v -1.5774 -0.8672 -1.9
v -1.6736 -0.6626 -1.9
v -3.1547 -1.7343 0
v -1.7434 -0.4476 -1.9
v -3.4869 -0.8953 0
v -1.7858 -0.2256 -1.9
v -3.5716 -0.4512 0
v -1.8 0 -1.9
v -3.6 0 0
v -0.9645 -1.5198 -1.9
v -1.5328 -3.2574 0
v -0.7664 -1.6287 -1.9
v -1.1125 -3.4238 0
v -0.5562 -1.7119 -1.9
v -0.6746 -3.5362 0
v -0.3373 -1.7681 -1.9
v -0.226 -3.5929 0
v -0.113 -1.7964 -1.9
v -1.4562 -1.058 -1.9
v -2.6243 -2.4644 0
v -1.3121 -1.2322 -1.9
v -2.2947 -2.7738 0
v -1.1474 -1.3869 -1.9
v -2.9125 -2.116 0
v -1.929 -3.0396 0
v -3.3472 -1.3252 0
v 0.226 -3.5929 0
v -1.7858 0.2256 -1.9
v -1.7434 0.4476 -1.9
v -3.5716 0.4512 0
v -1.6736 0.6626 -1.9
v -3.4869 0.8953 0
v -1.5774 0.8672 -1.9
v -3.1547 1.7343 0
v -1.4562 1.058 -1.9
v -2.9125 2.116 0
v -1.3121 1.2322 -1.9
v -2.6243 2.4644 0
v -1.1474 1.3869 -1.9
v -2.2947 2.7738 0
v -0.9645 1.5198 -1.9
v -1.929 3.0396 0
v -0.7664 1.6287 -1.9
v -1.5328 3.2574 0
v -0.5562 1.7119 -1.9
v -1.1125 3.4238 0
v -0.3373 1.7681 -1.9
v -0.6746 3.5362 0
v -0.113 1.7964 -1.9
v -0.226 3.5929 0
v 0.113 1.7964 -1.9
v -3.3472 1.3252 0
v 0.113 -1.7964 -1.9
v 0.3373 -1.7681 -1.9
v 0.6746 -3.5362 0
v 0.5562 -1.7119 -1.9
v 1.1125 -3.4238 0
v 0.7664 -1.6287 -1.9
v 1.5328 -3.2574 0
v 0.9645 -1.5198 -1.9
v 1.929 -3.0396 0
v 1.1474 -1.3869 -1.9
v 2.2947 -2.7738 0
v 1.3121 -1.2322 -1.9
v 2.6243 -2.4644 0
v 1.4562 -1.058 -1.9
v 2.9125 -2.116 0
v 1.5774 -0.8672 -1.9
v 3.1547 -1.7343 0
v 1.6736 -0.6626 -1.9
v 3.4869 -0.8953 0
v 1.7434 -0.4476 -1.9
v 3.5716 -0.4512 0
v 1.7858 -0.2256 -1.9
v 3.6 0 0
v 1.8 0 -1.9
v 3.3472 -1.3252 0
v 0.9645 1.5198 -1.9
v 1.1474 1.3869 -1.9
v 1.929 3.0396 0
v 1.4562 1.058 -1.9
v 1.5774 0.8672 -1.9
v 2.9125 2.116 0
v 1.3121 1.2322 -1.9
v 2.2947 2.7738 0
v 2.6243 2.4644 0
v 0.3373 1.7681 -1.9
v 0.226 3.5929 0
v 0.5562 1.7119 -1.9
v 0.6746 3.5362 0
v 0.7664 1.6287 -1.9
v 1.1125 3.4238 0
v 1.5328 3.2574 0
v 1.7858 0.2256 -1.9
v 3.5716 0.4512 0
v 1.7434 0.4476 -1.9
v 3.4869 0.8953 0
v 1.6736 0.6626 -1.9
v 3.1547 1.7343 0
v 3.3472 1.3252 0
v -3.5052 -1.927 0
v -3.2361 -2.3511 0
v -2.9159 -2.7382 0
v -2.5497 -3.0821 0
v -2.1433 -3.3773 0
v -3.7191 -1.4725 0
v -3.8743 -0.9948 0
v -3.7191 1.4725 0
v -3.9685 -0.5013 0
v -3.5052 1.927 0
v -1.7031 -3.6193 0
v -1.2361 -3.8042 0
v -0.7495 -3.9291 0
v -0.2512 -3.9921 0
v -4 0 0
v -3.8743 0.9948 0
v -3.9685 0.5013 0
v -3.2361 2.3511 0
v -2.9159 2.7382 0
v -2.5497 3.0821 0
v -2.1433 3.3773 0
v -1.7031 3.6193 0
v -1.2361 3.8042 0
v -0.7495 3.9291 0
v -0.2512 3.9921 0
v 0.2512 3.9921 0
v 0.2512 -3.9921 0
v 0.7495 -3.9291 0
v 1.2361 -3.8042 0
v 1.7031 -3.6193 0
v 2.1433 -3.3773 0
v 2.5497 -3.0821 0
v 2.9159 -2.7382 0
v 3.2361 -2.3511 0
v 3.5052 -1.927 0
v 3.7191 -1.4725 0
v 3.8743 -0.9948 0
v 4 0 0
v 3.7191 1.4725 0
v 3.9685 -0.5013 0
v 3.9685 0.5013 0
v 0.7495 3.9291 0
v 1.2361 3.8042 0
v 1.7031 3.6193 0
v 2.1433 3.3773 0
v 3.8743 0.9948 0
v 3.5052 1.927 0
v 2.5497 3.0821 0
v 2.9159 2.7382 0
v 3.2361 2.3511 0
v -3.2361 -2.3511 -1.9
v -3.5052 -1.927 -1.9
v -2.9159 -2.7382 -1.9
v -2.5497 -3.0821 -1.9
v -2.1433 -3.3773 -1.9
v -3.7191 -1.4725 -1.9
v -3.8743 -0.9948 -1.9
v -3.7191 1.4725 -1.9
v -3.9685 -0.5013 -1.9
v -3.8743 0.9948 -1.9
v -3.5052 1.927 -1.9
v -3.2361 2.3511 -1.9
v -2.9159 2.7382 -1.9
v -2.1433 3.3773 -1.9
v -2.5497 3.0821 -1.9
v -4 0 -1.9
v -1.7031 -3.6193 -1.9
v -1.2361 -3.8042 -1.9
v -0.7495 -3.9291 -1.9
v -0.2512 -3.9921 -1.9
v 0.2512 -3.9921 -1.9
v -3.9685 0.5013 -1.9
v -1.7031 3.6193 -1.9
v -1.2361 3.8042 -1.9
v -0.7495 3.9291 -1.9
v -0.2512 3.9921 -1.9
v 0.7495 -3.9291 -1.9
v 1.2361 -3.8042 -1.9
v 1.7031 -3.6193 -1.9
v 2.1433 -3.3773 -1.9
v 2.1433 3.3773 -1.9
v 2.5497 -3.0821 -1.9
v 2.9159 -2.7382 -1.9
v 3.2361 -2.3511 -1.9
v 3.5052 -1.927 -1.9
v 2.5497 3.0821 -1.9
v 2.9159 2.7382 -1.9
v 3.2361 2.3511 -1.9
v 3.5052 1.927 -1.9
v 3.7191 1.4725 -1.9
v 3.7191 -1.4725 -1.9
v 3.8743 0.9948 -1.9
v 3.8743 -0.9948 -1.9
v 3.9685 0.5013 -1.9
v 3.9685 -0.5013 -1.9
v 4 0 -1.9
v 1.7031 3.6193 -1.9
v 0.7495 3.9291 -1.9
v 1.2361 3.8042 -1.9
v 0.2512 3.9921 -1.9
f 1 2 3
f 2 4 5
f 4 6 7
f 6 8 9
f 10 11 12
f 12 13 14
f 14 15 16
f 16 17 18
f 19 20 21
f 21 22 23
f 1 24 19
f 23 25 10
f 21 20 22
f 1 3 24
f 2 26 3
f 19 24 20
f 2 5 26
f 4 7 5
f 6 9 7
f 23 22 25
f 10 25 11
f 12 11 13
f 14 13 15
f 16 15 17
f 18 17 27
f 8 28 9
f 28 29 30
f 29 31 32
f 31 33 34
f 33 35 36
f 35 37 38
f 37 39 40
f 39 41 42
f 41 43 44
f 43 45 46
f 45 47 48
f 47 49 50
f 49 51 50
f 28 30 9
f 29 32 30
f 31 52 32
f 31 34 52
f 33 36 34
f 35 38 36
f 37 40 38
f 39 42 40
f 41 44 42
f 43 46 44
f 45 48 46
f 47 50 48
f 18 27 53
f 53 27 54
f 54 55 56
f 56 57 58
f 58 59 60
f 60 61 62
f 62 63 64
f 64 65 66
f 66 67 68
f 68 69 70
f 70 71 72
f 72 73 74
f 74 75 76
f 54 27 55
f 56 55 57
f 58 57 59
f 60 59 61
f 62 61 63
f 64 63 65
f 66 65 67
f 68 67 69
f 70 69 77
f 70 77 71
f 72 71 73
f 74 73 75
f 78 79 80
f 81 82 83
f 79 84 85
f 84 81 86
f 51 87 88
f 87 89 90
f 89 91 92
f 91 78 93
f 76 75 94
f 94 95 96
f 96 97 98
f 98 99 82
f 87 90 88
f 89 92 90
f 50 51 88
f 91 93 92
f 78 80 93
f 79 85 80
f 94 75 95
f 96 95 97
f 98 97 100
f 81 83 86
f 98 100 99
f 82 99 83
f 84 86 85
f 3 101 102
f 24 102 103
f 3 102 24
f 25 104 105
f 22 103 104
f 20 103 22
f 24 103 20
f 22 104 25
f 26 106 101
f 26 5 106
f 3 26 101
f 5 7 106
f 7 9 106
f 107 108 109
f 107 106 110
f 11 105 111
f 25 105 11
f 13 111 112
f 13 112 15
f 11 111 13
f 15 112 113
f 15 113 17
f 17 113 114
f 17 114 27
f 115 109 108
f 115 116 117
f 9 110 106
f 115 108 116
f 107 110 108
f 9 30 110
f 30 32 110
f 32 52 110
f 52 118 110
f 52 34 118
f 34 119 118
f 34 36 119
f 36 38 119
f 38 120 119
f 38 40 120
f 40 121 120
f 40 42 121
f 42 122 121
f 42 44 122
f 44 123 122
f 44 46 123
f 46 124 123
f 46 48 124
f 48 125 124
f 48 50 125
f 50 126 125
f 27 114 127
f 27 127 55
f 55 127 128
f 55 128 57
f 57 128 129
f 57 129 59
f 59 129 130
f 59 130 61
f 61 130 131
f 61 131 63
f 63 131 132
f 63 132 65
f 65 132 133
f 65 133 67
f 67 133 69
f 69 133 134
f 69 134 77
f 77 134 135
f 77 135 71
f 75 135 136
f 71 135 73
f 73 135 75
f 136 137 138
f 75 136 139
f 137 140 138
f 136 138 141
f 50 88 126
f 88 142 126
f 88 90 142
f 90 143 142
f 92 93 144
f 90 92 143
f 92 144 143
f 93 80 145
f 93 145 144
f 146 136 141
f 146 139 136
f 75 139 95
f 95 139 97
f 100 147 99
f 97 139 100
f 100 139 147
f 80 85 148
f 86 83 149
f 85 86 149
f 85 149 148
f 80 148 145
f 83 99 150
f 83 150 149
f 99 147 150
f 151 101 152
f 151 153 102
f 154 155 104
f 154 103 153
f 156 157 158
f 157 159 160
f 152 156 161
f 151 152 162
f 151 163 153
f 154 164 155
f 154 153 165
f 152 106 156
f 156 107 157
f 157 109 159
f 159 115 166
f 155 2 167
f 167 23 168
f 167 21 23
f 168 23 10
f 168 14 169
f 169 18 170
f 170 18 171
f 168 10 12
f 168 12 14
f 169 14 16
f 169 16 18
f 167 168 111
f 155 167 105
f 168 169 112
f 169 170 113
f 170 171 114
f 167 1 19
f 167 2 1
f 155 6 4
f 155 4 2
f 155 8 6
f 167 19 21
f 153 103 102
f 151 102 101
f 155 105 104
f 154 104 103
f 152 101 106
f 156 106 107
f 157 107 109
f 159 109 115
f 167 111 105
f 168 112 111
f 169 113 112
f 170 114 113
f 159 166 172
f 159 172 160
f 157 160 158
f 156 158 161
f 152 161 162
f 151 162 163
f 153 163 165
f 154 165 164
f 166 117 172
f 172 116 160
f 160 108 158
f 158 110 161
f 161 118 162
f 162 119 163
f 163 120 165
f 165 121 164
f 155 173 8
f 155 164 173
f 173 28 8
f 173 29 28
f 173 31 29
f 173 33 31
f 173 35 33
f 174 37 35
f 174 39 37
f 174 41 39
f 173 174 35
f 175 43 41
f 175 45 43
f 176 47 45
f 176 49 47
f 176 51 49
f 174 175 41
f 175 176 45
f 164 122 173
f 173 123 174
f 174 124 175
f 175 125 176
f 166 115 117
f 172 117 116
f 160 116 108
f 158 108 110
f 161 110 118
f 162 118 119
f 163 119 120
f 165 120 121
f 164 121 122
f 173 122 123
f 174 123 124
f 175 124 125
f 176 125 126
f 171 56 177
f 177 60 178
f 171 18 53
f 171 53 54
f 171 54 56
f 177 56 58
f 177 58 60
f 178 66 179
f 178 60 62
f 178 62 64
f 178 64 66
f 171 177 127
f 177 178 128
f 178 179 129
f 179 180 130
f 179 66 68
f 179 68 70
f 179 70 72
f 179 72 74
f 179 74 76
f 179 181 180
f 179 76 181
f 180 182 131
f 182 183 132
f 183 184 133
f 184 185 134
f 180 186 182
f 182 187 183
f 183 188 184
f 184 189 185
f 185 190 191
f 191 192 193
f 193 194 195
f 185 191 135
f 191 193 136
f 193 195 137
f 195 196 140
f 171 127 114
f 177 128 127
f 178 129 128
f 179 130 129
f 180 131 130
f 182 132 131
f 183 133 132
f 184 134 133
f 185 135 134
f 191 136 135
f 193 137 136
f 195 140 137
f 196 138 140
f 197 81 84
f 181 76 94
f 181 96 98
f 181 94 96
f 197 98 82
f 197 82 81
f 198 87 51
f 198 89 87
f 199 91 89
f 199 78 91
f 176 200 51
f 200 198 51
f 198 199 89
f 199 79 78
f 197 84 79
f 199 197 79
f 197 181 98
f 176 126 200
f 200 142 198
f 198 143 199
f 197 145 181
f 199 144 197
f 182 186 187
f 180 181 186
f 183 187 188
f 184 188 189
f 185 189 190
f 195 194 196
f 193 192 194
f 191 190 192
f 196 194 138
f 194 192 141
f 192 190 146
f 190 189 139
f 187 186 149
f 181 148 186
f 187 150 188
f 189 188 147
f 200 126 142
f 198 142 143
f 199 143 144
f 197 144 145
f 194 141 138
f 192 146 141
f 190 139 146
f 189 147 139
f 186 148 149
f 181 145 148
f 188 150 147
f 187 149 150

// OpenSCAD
$fn = 50;

difference() {
	union() {
		translate(v = [0, 0, -1.9]) {
			cylinder(h = 1.9, r = 4.0);
		}
	}
	union() {
		translate(v = [0, 0, 0]) {
			rotate(a = [0, 0, 0]) {
				difference() {
					union() {
						translate(v = [0, 0, -4.9]) {
							cylinder(h = 4.9, r = 1.5);
						}
						translate(v = [0, 0, -1.9]) {
							cylinder(h = 1.9, r1 = 1.8, r2 = 3.6);
						}
						translate(v = [0, 0, -4.9]) {
							cylinder(h = 4.9, r = 1.8);
						}
						translate(v = [0, 0, -4.9]) {
							cylinder(h = 4.9, r = 1.5);
						}
					}
					union();
				}
			}
		}
	}
}
